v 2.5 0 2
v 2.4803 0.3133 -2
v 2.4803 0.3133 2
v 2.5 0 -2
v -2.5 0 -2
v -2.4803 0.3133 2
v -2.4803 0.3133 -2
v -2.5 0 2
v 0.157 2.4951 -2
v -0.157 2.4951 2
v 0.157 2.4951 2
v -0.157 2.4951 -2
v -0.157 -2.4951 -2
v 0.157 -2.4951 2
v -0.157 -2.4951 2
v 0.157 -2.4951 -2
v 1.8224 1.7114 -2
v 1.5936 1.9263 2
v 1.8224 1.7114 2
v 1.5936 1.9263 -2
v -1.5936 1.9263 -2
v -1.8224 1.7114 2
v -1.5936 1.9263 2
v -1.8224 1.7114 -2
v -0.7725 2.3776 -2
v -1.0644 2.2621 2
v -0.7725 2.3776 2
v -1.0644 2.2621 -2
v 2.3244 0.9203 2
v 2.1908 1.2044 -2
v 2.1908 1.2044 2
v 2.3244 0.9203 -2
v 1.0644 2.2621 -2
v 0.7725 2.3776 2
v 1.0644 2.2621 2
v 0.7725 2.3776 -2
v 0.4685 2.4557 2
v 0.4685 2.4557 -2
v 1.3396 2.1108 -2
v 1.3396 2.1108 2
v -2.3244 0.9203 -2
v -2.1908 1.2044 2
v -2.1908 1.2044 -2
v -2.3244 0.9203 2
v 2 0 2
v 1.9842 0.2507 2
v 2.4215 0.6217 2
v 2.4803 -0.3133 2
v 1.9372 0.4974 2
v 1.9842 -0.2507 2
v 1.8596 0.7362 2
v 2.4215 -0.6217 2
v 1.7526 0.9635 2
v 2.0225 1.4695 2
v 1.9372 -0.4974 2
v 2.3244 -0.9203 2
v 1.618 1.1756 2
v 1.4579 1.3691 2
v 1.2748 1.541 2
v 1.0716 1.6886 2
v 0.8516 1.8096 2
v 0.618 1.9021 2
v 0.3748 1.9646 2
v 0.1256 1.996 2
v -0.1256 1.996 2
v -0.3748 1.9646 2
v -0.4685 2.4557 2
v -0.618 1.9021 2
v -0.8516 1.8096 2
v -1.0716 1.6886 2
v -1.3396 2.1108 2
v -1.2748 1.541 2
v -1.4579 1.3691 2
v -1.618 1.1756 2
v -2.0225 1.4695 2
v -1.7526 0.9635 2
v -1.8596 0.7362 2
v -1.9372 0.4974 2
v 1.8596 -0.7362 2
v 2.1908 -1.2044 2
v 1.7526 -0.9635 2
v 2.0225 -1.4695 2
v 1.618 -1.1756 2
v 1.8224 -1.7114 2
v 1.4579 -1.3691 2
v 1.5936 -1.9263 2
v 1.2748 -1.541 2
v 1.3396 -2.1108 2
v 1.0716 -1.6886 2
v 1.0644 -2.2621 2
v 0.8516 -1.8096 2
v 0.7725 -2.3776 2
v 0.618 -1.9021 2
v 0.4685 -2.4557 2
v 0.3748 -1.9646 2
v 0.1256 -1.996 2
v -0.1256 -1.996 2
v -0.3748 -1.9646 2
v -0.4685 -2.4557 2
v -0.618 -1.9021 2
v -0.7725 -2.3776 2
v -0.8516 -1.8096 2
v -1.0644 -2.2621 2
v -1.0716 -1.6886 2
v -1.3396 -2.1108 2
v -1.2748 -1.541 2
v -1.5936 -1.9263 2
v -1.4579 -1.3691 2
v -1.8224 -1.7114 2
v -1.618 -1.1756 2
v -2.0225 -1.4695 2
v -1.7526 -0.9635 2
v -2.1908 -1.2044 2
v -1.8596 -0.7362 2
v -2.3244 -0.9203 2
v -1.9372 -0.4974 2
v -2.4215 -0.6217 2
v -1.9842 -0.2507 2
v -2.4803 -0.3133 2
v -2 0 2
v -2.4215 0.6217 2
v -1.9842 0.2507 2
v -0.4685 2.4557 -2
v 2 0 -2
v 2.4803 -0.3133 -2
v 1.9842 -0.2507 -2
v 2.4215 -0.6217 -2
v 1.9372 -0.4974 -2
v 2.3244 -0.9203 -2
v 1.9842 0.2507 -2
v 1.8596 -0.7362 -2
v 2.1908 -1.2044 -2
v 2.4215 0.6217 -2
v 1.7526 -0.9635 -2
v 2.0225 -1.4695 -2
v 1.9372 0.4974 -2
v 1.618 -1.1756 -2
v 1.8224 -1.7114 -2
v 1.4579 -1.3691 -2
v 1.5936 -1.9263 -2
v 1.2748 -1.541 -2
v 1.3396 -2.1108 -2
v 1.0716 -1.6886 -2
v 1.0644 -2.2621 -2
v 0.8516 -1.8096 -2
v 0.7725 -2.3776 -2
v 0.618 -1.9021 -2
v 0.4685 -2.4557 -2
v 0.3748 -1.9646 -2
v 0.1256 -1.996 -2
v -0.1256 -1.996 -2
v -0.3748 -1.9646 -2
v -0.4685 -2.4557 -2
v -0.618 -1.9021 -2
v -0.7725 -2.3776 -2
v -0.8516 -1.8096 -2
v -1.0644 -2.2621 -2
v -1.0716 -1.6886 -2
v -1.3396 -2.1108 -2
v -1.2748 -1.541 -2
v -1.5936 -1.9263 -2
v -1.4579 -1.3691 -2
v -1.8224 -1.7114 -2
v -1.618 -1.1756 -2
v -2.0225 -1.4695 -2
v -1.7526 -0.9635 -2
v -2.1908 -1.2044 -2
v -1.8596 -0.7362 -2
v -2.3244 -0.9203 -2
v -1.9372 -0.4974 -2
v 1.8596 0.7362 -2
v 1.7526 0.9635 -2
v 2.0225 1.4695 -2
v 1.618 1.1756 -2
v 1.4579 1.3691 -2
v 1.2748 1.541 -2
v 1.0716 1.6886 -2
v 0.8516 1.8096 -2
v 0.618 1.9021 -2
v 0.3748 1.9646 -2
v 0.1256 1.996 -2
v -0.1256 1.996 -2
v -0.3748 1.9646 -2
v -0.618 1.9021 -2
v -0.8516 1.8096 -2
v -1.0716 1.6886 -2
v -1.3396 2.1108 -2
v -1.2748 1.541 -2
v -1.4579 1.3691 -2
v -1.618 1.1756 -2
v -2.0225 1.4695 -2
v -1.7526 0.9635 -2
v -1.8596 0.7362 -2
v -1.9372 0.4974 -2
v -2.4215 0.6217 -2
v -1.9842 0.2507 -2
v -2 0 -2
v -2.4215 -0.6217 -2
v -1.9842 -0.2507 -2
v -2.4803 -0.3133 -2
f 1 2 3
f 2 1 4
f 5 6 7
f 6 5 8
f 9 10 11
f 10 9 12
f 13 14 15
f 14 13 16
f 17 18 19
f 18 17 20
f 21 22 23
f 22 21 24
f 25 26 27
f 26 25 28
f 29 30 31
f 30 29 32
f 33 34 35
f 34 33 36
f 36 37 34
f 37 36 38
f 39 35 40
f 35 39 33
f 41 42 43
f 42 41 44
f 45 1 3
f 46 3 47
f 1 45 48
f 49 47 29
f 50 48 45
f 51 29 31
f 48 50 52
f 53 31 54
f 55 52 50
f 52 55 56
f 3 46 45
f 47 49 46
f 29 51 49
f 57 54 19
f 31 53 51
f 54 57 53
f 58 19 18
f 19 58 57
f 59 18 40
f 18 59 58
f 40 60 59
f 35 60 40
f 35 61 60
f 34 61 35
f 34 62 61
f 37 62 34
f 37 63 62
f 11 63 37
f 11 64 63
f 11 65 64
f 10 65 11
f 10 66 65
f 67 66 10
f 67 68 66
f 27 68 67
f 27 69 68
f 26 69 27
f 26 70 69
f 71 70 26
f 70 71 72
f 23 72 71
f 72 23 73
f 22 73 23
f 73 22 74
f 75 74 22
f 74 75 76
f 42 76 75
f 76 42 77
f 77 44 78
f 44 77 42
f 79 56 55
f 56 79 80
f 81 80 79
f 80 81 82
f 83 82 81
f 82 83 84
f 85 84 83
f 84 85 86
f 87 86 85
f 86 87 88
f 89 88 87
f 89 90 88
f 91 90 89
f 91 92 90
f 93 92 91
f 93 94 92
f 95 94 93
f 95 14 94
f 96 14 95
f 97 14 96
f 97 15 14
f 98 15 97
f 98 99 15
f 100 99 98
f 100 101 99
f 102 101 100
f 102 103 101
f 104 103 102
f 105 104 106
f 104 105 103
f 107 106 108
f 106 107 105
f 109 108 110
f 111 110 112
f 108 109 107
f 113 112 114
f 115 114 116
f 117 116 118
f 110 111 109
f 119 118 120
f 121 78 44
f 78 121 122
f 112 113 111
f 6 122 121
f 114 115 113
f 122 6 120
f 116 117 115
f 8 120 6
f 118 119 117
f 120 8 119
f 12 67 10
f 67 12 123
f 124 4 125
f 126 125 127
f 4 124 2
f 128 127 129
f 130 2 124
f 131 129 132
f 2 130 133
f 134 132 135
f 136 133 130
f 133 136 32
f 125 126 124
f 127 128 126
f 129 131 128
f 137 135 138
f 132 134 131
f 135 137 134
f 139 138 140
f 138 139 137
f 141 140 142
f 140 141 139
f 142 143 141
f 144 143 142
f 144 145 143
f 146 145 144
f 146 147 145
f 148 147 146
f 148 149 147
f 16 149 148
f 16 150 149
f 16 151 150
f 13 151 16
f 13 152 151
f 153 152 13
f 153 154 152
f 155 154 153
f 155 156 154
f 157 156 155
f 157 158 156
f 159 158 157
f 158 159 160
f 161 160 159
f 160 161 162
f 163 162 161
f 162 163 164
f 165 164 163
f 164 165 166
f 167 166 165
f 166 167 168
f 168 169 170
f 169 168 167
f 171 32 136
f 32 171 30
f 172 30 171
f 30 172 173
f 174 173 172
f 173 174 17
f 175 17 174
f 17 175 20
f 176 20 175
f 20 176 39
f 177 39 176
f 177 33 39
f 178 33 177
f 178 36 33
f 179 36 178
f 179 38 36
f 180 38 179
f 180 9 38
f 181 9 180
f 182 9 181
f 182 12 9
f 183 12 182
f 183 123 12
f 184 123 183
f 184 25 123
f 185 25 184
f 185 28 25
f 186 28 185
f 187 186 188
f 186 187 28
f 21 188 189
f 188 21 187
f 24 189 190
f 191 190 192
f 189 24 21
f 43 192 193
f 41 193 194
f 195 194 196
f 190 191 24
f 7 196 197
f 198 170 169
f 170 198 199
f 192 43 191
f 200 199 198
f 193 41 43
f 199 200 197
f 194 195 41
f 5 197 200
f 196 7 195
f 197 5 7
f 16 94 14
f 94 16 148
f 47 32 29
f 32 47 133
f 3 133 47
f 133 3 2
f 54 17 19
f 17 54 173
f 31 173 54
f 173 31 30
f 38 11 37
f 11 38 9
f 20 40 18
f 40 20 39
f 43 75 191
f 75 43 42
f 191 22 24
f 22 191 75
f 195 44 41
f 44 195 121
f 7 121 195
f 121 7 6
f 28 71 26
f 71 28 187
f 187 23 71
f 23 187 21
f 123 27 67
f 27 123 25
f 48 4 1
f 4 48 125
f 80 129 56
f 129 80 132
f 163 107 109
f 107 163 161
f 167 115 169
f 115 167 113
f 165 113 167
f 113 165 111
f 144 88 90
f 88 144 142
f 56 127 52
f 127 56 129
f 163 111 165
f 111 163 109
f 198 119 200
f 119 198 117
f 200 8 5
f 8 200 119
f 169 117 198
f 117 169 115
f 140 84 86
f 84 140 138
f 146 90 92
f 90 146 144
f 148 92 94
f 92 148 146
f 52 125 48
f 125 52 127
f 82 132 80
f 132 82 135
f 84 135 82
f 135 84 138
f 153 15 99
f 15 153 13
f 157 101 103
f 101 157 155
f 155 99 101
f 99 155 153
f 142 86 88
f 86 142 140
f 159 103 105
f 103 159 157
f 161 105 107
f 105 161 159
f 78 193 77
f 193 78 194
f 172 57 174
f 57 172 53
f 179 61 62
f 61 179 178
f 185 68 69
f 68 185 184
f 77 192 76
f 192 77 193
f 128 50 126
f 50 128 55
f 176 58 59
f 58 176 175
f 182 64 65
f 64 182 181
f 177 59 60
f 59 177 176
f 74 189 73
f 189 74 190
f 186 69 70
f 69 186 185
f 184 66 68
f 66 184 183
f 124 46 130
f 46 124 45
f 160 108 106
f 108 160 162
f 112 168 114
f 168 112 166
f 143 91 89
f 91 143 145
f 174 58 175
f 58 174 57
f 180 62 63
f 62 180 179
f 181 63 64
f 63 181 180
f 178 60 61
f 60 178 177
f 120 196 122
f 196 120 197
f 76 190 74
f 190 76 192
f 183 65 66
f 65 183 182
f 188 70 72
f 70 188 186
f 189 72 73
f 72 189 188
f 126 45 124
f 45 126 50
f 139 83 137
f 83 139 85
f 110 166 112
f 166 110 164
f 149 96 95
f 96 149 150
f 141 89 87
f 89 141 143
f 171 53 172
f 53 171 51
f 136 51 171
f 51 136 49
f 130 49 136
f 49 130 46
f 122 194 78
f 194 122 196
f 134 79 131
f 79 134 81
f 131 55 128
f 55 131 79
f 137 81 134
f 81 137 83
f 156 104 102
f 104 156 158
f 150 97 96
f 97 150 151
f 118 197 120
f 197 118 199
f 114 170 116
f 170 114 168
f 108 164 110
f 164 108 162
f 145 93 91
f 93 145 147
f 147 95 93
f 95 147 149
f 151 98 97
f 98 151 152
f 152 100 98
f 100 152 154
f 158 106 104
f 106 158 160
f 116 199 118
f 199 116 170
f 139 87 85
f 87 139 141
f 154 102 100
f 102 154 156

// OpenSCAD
$fn = 50;


difference() {
	union() {
		translate(v = [0, 0, -2.0000000000]) {
			cylinder(h = 4, r = 2.5000000000);
		}
	}
	union() {
		translate(v = [0, 0, -100.0000000000]) {
			cylinder(h = 200, r = 2);
		}
	}
}
